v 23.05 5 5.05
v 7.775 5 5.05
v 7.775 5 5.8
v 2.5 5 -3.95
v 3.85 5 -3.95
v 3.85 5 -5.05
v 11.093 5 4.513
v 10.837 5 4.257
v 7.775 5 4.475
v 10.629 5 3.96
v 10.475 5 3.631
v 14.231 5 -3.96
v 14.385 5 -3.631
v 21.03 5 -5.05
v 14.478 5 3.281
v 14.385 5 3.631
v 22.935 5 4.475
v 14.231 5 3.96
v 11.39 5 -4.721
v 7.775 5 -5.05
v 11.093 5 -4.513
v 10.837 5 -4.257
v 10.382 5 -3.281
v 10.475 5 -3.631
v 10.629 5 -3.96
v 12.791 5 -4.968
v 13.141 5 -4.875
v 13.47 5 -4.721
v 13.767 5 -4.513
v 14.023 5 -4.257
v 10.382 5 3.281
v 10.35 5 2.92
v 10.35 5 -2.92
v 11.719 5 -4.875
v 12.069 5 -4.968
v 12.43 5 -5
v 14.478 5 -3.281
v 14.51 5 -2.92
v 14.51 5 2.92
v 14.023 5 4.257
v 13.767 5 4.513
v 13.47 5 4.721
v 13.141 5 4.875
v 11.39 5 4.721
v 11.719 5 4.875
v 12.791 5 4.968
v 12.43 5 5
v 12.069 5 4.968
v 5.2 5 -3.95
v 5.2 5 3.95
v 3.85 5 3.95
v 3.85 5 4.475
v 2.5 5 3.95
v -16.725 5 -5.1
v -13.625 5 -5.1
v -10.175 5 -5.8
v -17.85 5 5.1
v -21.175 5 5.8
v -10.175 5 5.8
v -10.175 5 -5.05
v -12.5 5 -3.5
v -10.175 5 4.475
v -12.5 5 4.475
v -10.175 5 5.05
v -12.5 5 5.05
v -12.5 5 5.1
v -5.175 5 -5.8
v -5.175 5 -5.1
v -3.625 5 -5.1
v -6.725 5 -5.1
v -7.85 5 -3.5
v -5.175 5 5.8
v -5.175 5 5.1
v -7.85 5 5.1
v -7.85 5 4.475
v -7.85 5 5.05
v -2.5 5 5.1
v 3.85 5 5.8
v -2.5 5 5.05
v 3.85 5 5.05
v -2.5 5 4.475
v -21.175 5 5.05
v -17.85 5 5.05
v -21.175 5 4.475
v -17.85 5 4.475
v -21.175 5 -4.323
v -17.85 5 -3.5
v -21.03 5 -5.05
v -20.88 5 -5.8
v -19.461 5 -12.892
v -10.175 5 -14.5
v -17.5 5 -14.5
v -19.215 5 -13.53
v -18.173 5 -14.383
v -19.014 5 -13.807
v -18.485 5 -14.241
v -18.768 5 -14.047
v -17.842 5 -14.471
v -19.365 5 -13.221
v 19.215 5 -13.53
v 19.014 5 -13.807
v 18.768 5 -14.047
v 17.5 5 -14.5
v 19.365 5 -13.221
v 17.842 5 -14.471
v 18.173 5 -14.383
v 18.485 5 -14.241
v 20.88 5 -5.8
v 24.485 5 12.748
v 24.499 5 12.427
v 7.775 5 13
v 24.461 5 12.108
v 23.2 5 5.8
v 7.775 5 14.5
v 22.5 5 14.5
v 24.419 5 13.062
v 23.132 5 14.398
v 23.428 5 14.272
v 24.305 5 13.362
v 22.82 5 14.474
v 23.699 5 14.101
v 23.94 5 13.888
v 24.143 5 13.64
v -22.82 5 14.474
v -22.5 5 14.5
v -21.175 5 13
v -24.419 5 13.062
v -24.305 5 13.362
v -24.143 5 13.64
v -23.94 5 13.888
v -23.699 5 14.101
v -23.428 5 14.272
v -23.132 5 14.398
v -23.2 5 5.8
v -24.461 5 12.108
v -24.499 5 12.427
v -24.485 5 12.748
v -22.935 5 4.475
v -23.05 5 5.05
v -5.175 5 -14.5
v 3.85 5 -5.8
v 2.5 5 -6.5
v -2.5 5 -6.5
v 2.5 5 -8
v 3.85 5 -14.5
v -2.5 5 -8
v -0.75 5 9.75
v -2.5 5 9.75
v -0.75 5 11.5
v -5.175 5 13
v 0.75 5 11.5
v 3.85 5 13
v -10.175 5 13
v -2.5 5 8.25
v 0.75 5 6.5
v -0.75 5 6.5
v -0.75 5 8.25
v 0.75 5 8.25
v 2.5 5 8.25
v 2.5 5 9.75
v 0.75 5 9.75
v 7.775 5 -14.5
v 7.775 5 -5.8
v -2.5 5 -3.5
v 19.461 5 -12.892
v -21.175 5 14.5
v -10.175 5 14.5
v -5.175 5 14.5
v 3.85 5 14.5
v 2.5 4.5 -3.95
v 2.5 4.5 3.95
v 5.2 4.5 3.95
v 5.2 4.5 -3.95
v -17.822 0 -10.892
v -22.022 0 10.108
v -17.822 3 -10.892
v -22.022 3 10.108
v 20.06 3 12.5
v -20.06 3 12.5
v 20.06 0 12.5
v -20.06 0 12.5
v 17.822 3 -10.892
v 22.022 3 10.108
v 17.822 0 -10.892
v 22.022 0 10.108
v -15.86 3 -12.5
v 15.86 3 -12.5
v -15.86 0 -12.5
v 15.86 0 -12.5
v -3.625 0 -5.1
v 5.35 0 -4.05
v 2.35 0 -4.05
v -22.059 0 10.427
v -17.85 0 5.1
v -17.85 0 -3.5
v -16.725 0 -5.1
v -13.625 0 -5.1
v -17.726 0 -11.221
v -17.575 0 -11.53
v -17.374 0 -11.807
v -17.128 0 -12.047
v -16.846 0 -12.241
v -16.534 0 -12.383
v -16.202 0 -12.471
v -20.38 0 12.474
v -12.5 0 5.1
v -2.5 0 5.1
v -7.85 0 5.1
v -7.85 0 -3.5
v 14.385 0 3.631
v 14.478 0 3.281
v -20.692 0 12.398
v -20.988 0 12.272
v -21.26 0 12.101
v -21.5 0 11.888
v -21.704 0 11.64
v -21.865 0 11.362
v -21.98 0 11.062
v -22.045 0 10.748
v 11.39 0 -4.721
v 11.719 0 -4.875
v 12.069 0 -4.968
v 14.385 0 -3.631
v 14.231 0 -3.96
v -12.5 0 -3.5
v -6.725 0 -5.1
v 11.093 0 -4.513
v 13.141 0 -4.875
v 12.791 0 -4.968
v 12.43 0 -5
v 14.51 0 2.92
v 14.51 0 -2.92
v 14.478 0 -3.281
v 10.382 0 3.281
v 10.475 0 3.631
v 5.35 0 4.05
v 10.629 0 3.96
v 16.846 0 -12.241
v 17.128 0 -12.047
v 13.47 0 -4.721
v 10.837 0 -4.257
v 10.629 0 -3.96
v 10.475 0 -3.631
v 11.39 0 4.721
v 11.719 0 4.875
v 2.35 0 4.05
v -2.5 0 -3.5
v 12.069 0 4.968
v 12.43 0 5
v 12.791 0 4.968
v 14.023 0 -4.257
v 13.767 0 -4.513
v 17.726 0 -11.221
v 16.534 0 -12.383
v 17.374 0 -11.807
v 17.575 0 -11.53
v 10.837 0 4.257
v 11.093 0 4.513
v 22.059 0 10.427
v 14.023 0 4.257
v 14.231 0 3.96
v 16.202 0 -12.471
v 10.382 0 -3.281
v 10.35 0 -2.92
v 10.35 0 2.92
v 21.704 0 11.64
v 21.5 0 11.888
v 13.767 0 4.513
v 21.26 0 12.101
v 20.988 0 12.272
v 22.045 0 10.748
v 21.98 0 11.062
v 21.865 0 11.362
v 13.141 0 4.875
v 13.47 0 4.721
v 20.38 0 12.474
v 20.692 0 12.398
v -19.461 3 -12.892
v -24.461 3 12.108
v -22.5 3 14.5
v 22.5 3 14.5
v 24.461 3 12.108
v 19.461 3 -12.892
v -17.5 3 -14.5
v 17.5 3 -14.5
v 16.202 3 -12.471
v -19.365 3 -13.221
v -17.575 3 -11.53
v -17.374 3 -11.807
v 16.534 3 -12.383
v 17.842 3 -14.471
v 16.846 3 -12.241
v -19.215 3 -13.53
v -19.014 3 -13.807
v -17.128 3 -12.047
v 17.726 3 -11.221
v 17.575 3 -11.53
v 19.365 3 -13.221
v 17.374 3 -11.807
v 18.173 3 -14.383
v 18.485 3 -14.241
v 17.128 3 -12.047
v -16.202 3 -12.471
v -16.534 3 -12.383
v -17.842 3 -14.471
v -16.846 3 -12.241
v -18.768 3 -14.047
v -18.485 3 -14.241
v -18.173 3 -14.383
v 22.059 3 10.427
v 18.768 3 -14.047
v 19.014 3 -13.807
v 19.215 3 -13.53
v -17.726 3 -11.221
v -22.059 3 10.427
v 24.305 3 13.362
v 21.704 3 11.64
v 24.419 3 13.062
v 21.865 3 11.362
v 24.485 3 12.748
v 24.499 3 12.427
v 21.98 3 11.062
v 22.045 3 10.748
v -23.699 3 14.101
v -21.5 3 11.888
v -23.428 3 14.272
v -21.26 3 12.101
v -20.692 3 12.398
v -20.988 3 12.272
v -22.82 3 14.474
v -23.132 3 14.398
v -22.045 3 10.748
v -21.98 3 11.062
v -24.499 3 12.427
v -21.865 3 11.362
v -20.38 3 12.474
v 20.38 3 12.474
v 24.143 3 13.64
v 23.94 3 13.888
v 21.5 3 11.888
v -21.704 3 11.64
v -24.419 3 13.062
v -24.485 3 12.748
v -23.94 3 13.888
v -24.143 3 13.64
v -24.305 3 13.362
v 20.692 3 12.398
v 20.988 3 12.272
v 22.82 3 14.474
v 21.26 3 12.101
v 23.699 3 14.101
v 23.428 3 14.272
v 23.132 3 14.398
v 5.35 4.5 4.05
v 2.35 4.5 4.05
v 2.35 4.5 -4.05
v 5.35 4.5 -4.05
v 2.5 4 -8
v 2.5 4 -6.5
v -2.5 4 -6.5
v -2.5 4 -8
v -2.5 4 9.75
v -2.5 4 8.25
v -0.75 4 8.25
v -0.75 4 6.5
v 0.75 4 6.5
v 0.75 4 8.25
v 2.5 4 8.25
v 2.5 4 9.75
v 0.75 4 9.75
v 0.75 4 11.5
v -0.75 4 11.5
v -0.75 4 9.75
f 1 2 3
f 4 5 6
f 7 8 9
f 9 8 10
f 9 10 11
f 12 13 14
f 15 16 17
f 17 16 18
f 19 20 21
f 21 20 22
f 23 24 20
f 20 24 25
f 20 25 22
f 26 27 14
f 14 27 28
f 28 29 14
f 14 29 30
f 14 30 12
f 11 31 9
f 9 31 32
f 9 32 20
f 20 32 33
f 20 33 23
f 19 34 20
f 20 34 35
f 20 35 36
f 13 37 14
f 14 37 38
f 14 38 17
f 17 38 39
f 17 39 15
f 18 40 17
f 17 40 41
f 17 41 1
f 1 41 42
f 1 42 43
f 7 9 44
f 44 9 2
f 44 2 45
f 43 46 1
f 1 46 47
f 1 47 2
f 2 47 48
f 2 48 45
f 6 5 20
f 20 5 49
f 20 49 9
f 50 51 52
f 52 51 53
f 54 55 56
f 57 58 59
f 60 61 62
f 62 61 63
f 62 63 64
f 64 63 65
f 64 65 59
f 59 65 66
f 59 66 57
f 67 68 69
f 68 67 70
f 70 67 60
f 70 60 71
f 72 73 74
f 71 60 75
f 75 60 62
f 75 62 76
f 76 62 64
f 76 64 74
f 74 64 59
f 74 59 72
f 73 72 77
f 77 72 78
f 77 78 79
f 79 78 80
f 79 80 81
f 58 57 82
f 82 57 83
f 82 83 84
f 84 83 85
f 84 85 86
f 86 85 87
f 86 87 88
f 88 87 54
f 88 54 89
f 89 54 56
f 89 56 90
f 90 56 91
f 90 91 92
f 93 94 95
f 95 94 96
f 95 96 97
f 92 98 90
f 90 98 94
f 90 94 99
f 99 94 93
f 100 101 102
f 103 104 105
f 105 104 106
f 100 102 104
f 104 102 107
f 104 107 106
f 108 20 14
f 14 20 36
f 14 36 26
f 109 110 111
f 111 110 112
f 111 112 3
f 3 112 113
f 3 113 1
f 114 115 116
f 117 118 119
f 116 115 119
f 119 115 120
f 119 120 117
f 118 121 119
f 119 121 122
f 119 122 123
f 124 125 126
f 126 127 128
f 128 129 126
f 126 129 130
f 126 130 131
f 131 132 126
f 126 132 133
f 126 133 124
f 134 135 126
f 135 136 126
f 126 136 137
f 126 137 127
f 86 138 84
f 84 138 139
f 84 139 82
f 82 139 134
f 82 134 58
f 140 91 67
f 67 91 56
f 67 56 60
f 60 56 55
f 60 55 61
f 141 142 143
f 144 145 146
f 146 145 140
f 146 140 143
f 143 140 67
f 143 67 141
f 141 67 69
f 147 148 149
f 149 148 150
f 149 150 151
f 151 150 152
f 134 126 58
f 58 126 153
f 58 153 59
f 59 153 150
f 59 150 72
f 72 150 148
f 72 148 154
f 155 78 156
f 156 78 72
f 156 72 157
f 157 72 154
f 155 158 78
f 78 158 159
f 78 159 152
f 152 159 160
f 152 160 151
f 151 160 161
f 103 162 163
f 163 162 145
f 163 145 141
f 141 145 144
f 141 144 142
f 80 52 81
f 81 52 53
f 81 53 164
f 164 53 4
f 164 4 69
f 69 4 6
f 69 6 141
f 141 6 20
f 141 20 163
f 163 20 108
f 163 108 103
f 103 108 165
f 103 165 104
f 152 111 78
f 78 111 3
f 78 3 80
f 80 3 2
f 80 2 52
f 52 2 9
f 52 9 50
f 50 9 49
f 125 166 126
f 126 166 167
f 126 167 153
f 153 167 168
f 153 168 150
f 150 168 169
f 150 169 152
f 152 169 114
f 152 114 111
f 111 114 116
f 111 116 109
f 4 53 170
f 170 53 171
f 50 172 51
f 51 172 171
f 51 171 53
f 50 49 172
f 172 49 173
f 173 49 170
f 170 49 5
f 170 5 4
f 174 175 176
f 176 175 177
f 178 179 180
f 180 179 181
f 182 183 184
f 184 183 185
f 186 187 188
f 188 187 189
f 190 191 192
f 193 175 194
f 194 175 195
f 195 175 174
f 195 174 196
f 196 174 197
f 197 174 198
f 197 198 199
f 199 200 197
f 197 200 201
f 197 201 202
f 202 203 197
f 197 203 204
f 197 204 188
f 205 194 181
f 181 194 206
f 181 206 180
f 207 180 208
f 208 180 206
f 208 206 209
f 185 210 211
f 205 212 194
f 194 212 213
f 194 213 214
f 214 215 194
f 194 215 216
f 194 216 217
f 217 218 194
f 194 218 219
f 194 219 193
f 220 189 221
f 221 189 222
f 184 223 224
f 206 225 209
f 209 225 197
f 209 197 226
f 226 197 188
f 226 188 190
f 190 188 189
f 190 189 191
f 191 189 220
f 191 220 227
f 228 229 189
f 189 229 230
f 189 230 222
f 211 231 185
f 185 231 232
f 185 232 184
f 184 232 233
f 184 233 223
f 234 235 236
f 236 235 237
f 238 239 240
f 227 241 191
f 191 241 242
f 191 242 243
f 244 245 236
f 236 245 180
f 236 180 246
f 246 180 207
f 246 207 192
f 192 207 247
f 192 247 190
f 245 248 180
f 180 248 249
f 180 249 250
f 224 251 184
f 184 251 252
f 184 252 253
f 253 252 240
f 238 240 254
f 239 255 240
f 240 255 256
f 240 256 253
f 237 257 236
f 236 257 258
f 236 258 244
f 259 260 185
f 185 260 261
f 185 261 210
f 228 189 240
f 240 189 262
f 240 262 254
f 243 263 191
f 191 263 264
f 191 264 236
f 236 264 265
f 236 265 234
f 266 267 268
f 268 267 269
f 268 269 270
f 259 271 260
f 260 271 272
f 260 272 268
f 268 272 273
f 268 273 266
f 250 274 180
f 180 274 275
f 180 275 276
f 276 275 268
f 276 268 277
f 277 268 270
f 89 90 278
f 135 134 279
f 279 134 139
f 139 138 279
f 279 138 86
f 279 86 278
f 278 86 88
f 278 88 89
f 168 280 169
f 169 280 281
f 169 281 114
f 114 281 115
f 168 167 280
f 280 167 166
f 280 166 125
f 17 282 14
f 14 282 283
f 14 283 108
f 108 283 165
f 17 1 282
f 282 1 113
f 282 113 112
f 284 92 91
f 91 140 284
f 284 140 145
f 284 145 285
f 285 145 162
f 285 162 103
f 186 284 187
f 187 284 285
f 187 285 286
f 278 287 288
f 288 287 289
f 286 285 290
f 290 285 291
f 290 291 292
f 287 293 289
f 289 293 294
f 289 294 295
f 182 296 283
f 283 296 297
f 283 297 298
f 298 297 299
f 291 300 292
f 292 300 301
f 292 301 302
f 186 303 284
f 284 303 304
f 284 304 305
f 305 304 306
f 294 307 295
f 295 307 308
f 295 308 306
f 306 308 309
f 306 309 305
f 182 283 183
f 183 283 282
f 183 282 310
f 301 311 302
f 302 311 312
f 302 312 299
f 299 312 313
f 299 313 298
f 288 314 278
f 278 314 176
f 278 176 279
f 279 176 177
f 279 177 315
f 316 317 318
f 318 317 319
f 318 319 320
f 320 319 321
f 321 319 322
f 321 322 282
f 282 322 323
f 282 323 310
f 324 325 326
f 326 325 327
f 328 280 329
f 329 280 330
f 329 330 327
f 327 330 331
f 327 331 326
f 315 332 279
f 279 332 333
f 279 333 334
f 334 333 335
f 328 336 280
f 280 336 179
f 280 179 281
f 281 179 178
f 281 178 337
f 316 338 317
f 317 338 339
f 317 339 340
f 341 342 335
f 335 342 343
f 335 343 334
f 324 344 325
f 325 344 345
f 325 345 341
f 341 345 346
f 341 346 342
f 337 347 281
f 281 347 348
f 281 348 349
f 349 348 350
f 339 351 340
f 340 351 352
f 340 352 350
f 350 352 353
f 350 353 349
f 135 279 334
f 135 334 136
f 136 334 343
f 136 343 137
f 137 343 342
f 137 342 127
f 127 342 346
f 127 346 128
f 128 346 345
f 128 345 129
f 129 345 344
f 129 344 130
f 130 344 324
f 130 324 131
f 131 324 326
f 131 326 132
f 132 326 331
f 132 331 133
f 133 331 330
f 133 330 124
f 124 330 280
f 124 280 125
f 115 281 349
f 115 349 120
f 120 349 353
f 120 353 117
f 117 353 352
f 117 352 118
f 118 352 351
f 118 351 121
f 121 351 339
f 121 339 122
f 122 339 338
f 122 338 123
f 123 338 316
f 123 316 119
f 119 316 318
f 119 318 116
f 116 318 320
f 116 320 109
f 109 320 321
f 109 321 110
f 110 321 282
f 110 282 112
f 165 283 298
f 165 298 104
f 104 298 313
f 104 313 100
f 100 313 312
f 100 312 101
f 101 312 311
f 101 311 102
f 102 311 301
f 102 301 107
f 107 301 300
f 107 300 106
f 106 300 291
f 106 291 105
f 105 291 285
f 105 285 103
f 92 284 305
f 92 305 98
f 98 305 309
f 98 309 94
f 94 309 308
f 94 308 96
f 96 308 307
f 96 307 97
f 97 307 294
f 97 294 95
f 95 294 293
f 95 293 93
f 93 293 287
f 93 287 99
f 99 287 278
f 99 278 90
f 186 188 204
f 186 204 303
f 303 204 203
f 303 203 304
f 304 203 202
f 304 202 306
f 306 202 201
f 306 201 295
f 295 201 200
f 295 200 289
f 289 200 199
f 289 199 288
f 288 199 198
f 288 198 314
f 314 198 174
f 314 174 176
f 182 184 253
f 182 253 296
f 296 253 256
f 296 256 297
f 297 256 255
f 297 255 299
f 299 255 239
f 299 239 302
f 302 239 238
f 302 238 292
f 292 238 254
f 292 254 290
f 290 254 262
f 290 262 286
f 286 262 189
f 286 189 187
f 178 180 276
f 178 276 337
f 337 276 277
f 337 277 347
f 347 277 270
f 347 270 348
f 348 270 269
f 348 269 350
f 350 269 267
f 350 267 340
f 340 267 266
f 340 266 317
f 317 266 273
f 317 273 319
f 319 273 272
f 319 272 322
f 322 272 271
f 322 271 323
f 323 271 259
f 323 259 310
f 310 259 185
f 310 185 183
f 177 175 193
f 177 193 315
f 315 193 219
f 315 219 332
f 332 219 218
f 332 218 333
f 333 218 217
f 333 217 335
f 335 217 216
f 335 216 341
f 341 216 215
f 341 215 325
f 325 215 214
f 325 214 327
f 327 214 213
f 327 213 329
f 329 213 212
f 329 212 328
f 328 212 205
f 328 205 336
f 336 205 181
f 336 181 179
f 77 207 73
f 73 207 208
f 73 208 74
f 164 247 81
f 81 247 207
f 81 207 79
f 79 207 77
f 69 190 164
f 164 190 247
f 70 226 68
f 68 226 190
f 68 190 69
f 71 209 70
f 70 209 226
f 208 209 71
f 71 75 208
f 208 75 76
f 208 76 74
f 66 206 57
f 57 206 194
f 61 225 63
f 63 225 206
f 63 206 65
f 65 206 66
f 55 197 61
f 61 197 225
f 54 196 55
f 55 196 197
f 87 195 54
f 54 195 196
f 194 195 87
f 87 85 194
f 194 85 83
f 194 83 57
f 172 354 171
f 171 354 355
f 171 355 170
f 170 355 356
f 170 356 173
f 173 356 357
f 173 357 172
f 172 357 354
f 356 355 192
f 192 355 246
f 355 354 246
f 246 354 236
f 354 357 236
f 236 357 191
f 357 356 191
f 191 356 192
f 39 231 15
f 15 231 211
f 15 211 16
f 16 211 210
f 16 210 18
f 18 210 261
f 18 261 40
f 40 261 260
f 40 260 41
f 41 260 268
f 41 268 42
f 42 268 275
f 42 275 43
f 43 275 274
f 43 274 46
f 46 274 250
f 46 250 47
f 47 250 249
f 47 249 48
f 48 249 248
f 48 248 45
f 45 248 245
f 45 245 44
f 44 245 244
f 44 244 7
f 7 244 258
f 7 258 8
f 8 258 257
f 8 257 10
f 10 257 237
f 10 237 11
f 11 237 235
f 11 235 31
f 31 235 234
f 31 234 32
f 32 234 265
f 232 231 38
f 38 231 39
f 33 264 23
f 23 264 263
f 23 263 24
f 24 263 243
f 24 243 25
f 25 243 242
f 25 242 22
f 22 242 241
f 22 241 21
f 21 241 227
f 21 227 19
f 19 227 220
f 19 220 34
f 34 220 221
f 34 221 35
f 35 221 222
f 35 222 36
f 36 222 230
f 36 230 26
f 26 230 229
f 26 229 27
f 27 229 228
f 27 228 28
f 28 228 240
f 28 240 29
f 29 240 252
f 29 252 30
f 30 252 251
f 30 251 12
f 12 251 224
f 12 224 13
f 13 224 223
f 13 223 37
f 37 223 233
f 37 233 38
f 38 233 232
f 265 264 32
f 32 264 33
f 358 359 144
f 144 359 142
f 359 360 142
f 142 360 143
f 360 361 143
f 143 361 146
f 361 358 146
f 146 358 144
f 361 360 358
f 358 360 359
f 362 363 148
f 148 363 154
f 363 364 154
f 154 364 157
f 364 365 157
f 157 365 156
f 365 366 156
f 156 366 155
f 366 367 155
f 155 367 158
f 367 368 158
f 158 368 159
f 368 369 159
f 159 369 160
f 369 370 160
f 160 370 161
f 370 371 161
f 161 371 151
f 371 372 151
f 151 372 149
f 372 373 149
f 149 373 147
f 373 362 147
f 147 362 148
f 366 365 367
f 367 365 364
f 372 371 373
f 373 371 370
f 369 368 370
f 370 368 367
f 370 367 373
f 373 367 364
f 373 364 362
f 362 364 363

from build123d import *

# Parameters (mm, degrees)
BOSS_EXTRUDE1_DEPTH = 3
BOSS_EXTRUDE2_DEPTH = 2
FILLET1_R           = 2
CUT_EXTRUDE1_DEPTH  = 5
LPATTERN1_COUNT     = 2
LPATTERN1_PITCH     = 10
SKETCH5_W           = 2.7
SKETCH5_H           = 7.9
CUT_EXTRUDE2_DEPTH  = 5
SKETCH6_W           = 3
SKETCH6_H           = 8.1
CUT_EXTRUDE3_DEPTH  = 4.5
USB_C_HOLE_DEPTH    = 5
SKETCH8_W           = 1.75
SKETCH8_H           = 1.5
SKETCH8_W_2         = 1.5
SKETCH8_H_2         = 1.75
SKETCH8_W_3         = 5
POSNEGSIGNS_DEPTH   = 1


with BuildPart() as part:
    # Sketch1 → Boss-Extrude1 (new body)
    with BuildSketch(Plane(origin=(0, 0, 0), x_dir=(1, 0, 0), z_dir=(0, 1, 0))):
        Polygon((-17.5, 12.5), (17.5, 12.5), (22.5, -12.5), (-22.5, -12.5), align=None)
    extrude(amount=BOSS_EXTRUDE1_DEPTH)

    # Sketch2 → Boss-Extrude2 (add)
    with BuildSketch(Plane(origin=(0, 3, 0), x_dir=(1, 0, 0), z_dir=(0, 1, 0))):
        Polygon((-19.139607805, 14.5), (19.139607805, 14.5), (24.939607805, -14.5), (-24.939607805, -14.5), align=None)
    extrude(amount=BOSS_EXTRUDE2_DEPTH)

    # Fillet1
    fillet1_edges = [part.edges().sort_by_distance(p)[0] for p in [
        (-19.139607805, 4, -14.5),
        (-24.939607805, 4, 14.5),
        (24.939607805, 4, 14.5),
        (19.139607805, 4, -14.5),
        (-17.5, 1.5, -12.5),
        (17.5, 1.5, -12.5),
        (22.5, 1.5, 12.5),
        (-22.5, 1.5, 12.5),
    ]]
    fillet(fillet1_edges, radius=FILLET1_R)

    # Sketch3 → Cut-Extrude1 (cut)
    with BuildSketch(Plane(origin=(0, 5, 0), x_dir=(1, 0, 0), z_dir=(0, 1, 0))):
        Polygon((-7.85, -5.1), (-2.5, -5.1), (-2.5, 3.5), (-3.625, 5.1), (-6.725, 5.1), (-7.85, 3.5), align=None)
    cut_extrude1 = extrude(amount=-CUT_EXTRUDE1_DEPTH, mode=Mode.SUBTRACT)

    # LPattern1: Cut-Extrude1 ×2
    with Locations(*[(-i * LPATTERN1_PITCH, 0, 0) for i in range(1, LPATTERN1_COUNT)]):
        add(cut_extrude1, mode=Mode.SUBTRACT)

    # Sketch5 → Cut-Extrude2 (cut)
    with BuildSketch(Plane.XZ):
        with Locations((3.85, 0)):
            Rectangle(SKETCH5_W, SKETCH5_H)
    extrude(amount=-CUT_EXTRUDE2_DEPTH, mode=Mode.SUBTRACT)

    # Sketch6 → Cut-Extrude3 (cut)
    with BuildSketch(Plane.XZ):
        with Locations((3.85, 0)):
            Rectangle(SKETCH6_W, SKETCH6_H)
    extrude(amount=-CUT_EXTRUDE3_DEPTH, mode=Mode.SUBTRACT)

    # Sketch7 → USB-C Hole (cut)
    with BuildSketch(Plane.XZ):
        with BuildLine():
            Line((14.51, 2.92), (14.51, -2.92))
            ThreePointArc((14.51, -2.92), (12.43, -5), (10.35, -2.92))
            Line((10.35, -2.92), (10.35, 2.92))
            ThreePointArc((10.35, 2.92), (12.43, 5), (14.51, 2.92))
        make_face()
    extrude(amount=-USB_C_HOLE_DEPTH, mode=Mode.SUBTRACT)

    # Sketch8 → PosNegSigns (cut)
    with BuildSketch(Plane(origin=(0, 5, 0), x_dir=(1, 0, 0), z_dir=(0, 1, 0))):
        with Locations((-1.625, -9)):
            Rectangle(SKETCH8_W, SKETCH8_H)
        with Locations((0, -10.625)):
            Rectangle(SKETCH8_W_2, SKETCH8_H_2)
        with Locations((0, -9)):
            Rectangle(SKETCH8_W_2, SKETCH8_H)
        with Locations((1.625, -9)):
            Rectangle(SKETCH8_W, SKETCH8_H)
        with Locations((0, -7.375)):
            Rectangle(SKETCH8_W_2, SKETCH8_H_2)
        with Locations((0, 7.25)):
            Rectangle(SKETCH8_W_3, SKETCH8_H)
    extrude(amount=-POSNEGSIGNS_DEPTH, mode=Mode.SUBTRACT)


solid = part.part
